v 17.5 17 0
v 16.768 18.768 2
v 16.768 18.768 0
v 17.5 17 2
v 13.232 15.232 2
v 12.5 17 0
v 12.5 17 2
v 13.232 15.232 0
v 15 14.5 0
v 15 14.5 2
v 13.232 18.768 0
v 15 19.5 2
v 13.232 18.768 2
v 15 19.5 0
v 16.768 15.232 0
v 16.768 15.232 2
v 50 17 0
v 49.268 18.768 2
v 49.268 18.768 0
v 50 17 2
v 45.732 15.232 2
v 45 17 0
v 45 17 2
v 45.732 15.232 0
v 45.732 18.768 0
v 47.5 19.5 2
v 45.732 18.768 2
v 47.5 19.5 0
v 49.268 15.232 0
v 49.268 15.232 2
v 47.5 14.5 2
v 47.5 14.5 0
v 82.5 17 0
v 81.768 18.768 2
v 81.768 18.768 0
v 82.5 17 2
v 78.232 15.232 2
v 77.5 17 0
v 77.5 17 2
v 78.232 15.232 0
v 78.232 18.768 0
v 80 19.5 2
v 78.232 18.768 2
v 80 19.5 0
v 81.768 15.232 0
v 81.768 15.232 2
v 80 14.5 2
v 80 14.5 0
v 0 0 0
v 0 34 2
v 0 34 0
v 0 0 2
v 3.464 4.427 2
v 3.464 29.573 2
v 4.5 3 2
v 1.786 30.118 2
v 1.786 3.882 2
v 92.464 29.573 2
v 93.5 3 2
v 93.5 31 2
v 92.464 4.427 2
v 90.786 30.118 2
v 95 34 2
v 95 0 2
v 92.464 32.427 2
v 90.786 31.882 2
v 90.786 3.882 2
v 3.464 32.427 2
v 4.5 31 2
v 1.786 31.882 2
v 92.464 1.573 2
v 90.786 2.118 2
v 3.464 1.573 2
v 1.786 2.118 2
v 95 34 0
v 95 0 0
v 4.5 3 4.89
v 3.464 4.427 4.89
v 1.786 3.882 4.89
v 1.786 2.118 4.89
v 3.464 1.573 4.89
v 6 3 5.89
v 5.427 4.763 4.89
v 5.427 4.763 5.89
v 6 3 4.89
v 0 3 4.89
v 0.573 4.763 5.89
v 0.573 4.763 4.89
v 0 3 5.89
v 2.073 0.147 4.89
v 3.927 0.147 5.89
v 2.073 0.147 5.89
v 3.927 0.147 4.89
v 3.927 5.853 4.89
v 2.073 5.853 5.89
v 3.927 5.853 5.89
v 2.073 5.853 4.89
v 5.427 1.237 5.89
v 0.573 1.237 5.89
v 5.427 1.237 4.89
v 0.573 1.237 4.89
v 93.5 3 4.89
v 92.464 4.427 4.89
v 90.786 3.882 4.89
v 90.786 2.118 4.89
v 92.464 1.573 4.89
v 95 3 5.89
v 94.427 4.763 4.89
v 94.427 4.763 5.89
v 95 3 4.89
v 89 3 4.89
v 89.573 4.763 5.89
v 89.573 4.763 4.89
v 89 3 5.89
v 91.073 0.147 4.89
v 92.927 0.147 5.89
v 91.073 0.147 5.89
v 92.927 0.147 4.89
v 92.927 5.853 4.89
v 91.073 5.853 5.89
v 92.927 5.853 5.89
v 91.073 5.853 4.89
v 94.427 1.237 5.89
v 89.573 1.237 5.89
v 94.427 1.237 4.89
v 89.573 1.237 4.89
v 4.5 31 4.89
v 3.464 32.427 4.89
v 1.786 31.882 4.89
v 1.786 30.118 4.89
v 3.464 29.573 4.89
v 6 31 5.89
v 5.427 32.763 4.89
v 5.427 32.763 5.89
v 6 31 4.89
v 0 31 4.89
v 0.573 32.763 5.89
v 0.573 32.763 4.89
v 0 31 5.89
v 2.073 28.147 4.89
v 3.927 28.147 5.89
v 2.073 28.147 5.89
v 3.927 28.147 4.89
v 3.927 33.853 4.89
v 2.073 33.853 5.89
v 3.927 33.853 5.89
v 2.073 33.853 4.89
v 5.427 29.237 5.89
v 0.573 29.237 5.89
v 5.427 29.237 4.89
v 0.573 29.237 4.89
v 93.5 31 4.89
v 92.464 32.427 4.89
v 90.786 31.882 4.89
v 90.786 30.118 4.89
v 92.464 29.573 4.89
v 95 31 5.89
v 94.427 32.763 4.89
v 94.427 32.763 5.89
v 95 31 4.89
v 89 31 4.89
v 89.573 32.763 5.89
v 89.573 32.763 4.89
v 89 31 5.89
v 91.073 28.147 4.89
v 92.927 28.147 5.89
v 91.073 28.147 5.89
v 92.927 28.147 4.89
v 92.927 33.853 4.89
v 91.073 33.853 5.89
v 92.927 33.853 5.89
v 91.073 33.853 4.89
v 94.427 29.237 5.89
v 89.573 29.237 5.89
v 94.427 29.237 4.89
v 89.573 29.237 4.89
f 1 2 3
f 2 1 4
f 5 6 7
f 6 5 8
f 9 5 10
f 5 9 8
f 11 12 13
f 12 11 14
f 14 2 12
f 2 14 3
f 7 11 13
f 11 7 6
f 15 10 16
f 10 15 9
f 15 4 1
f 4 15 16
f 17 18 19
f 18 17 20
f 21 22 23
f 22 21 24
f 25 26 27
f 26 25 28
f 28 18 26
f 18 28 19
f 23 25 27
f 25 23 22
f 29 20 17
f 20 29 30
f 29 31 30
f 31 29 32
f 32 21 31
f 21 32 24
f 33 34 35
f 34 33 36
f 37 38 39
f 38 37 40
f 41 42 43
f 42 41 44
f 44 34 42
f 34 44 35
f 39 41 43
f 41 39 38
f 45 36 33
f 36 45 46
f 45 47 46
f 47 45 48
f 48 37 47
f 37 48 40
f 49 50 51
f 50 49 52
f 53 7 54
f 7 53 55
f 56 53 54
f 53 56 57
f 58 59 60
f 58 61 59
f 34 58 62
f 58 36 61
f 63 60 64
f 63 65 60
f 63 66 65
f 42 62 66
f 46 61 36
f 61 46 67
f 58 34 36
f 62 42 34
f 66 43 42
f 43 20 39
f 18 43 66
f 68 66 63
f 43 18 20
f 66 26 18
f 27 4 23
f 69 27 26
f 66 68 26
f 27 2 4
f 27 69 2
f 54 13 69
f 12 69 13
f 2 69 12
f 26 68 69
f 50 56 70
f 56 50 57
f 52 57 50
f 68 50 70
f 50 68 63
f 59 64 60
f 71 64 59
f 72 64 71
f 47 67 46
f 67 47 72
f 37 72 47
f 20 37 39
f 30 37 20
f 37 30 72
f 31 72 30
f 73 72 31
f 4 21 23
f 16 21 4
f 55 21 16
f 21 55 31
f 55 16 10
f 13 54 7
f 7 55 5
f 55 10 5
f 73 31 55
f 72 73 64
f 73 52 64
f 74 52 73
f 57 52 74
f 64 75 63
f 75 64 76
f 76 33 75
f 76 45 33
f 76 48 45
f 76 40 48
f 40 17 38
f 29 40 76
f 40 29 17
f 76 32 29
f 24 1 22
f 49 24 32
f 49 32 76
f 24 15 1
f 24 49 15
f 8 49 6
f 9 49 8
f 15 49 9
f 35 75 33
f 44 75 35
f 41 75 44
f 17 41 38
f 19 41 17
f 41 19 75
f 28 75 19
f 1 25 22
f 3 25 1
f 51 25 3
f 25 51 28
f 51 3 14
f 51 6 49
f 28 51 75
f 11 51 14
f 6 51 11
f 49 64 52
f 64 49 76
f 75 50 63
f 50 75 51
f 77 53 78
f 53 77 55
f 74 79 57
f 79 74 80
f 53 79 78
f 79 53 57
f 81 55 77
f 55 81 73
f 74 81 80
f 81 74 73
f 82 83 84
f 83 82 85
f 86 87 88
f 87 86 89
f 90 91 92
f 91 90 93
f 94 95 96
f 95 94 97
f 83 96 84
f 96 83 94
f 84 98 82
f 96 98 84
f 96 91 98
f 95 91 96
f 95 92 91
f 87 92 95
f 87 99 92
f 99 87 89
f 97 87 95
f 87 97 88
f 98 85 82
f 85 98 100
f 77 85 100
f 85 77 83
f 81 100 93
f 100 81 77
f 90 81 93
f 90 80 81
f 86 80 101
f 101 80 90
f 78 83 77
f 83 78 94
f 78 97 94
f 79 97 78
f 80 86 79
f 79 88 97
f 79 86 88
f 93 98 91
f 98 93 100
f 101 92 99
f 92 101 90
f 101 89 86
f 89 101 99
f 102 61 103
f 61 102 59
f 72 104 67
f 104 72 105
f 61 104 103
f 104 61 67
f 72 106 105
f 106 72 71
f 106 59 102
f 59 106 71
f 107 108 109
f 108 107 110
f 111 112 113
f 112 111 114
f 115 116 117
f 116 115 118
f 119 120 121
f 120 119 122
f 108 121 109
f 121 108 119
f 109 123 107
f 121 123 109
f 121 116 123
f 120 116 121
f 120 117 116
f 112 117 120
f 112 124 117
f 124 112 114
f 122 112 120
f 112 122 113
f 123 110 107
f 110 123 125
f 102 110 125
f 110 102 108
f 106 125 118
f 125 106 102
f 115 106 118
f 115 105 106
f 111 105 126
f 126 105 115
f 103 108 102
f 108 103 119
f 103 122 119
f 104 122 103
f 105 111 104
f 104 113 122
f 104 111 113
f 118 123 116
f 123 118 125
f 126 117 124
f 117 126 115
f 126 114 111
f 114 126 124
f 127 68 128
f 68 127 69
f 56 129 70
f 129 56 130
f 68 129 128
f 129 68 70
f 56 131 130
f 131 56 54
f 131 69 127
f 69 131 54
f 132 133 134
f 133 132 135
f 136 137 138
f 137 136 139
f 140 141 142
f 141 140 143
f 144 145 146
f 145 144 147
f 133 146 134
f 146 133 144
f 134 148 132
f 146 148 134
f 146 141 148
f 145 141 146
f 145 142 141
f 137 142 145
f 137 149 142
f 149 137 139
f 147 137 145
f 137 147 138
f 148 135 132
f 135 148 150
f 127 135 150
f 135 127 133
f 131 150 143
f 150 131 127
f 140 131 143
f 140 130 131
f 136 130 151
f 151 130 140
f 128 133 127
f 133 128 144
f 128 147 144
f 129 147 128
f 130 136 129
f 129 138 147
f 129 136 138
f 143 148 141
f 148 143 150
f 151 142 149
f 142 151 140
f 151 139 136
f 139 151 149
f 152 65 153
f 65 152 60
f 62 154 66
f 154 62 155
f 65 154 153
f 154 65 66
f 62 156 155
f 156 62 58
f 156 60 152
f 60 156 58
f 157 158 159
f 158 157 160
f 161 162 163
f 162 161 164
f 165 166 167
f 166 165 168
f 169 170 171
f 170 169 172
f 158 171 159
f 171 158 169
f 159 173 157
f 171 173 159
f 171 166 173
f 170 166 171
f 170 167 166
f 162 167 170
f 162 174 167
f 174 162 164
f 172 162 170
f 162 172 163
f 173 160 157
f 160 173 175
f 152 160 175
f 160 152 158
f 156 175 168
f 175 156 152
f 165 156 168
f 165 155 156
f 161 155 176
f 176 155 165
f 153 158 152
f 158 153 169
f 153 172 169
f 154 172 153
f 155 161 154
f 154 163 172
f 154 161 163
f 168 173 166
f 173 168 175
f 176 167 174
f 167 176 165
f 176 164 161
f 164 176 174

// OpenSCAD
module peg(sh=3, hh=1, sd=3, hd=6) {
    cylinder(h=sh, d=sd);
    translate([0,0,sh-0.01]) {
        cylinder(h=hh, d=hd);
    }
}

plate_dim = [95,34,2];
hole_diam = 5;

difference() {
    cube(plate_dim, false);
    translate([0,17,-.001]) {
        translate([15,0,0])
            cylinder(h=plate_dim[2]+.002,d=hole_diam);
        translate([47.5,0,0])
            cylinder(h=plate_dim[2]+.002,d=hole_diam);
        translate([80,0,0])
            cylinder(h=plate_dim[2]+.002,d=hole_diam);
    }
}

translate([0,0,plate_dim[2]-0.1]) {
    translate([3,3,0]) {        peg();
        translate([89,0,0])     peg();
        translate([0,28,0])     peg();
        translate([89,28,0])    peg();
    }
}
